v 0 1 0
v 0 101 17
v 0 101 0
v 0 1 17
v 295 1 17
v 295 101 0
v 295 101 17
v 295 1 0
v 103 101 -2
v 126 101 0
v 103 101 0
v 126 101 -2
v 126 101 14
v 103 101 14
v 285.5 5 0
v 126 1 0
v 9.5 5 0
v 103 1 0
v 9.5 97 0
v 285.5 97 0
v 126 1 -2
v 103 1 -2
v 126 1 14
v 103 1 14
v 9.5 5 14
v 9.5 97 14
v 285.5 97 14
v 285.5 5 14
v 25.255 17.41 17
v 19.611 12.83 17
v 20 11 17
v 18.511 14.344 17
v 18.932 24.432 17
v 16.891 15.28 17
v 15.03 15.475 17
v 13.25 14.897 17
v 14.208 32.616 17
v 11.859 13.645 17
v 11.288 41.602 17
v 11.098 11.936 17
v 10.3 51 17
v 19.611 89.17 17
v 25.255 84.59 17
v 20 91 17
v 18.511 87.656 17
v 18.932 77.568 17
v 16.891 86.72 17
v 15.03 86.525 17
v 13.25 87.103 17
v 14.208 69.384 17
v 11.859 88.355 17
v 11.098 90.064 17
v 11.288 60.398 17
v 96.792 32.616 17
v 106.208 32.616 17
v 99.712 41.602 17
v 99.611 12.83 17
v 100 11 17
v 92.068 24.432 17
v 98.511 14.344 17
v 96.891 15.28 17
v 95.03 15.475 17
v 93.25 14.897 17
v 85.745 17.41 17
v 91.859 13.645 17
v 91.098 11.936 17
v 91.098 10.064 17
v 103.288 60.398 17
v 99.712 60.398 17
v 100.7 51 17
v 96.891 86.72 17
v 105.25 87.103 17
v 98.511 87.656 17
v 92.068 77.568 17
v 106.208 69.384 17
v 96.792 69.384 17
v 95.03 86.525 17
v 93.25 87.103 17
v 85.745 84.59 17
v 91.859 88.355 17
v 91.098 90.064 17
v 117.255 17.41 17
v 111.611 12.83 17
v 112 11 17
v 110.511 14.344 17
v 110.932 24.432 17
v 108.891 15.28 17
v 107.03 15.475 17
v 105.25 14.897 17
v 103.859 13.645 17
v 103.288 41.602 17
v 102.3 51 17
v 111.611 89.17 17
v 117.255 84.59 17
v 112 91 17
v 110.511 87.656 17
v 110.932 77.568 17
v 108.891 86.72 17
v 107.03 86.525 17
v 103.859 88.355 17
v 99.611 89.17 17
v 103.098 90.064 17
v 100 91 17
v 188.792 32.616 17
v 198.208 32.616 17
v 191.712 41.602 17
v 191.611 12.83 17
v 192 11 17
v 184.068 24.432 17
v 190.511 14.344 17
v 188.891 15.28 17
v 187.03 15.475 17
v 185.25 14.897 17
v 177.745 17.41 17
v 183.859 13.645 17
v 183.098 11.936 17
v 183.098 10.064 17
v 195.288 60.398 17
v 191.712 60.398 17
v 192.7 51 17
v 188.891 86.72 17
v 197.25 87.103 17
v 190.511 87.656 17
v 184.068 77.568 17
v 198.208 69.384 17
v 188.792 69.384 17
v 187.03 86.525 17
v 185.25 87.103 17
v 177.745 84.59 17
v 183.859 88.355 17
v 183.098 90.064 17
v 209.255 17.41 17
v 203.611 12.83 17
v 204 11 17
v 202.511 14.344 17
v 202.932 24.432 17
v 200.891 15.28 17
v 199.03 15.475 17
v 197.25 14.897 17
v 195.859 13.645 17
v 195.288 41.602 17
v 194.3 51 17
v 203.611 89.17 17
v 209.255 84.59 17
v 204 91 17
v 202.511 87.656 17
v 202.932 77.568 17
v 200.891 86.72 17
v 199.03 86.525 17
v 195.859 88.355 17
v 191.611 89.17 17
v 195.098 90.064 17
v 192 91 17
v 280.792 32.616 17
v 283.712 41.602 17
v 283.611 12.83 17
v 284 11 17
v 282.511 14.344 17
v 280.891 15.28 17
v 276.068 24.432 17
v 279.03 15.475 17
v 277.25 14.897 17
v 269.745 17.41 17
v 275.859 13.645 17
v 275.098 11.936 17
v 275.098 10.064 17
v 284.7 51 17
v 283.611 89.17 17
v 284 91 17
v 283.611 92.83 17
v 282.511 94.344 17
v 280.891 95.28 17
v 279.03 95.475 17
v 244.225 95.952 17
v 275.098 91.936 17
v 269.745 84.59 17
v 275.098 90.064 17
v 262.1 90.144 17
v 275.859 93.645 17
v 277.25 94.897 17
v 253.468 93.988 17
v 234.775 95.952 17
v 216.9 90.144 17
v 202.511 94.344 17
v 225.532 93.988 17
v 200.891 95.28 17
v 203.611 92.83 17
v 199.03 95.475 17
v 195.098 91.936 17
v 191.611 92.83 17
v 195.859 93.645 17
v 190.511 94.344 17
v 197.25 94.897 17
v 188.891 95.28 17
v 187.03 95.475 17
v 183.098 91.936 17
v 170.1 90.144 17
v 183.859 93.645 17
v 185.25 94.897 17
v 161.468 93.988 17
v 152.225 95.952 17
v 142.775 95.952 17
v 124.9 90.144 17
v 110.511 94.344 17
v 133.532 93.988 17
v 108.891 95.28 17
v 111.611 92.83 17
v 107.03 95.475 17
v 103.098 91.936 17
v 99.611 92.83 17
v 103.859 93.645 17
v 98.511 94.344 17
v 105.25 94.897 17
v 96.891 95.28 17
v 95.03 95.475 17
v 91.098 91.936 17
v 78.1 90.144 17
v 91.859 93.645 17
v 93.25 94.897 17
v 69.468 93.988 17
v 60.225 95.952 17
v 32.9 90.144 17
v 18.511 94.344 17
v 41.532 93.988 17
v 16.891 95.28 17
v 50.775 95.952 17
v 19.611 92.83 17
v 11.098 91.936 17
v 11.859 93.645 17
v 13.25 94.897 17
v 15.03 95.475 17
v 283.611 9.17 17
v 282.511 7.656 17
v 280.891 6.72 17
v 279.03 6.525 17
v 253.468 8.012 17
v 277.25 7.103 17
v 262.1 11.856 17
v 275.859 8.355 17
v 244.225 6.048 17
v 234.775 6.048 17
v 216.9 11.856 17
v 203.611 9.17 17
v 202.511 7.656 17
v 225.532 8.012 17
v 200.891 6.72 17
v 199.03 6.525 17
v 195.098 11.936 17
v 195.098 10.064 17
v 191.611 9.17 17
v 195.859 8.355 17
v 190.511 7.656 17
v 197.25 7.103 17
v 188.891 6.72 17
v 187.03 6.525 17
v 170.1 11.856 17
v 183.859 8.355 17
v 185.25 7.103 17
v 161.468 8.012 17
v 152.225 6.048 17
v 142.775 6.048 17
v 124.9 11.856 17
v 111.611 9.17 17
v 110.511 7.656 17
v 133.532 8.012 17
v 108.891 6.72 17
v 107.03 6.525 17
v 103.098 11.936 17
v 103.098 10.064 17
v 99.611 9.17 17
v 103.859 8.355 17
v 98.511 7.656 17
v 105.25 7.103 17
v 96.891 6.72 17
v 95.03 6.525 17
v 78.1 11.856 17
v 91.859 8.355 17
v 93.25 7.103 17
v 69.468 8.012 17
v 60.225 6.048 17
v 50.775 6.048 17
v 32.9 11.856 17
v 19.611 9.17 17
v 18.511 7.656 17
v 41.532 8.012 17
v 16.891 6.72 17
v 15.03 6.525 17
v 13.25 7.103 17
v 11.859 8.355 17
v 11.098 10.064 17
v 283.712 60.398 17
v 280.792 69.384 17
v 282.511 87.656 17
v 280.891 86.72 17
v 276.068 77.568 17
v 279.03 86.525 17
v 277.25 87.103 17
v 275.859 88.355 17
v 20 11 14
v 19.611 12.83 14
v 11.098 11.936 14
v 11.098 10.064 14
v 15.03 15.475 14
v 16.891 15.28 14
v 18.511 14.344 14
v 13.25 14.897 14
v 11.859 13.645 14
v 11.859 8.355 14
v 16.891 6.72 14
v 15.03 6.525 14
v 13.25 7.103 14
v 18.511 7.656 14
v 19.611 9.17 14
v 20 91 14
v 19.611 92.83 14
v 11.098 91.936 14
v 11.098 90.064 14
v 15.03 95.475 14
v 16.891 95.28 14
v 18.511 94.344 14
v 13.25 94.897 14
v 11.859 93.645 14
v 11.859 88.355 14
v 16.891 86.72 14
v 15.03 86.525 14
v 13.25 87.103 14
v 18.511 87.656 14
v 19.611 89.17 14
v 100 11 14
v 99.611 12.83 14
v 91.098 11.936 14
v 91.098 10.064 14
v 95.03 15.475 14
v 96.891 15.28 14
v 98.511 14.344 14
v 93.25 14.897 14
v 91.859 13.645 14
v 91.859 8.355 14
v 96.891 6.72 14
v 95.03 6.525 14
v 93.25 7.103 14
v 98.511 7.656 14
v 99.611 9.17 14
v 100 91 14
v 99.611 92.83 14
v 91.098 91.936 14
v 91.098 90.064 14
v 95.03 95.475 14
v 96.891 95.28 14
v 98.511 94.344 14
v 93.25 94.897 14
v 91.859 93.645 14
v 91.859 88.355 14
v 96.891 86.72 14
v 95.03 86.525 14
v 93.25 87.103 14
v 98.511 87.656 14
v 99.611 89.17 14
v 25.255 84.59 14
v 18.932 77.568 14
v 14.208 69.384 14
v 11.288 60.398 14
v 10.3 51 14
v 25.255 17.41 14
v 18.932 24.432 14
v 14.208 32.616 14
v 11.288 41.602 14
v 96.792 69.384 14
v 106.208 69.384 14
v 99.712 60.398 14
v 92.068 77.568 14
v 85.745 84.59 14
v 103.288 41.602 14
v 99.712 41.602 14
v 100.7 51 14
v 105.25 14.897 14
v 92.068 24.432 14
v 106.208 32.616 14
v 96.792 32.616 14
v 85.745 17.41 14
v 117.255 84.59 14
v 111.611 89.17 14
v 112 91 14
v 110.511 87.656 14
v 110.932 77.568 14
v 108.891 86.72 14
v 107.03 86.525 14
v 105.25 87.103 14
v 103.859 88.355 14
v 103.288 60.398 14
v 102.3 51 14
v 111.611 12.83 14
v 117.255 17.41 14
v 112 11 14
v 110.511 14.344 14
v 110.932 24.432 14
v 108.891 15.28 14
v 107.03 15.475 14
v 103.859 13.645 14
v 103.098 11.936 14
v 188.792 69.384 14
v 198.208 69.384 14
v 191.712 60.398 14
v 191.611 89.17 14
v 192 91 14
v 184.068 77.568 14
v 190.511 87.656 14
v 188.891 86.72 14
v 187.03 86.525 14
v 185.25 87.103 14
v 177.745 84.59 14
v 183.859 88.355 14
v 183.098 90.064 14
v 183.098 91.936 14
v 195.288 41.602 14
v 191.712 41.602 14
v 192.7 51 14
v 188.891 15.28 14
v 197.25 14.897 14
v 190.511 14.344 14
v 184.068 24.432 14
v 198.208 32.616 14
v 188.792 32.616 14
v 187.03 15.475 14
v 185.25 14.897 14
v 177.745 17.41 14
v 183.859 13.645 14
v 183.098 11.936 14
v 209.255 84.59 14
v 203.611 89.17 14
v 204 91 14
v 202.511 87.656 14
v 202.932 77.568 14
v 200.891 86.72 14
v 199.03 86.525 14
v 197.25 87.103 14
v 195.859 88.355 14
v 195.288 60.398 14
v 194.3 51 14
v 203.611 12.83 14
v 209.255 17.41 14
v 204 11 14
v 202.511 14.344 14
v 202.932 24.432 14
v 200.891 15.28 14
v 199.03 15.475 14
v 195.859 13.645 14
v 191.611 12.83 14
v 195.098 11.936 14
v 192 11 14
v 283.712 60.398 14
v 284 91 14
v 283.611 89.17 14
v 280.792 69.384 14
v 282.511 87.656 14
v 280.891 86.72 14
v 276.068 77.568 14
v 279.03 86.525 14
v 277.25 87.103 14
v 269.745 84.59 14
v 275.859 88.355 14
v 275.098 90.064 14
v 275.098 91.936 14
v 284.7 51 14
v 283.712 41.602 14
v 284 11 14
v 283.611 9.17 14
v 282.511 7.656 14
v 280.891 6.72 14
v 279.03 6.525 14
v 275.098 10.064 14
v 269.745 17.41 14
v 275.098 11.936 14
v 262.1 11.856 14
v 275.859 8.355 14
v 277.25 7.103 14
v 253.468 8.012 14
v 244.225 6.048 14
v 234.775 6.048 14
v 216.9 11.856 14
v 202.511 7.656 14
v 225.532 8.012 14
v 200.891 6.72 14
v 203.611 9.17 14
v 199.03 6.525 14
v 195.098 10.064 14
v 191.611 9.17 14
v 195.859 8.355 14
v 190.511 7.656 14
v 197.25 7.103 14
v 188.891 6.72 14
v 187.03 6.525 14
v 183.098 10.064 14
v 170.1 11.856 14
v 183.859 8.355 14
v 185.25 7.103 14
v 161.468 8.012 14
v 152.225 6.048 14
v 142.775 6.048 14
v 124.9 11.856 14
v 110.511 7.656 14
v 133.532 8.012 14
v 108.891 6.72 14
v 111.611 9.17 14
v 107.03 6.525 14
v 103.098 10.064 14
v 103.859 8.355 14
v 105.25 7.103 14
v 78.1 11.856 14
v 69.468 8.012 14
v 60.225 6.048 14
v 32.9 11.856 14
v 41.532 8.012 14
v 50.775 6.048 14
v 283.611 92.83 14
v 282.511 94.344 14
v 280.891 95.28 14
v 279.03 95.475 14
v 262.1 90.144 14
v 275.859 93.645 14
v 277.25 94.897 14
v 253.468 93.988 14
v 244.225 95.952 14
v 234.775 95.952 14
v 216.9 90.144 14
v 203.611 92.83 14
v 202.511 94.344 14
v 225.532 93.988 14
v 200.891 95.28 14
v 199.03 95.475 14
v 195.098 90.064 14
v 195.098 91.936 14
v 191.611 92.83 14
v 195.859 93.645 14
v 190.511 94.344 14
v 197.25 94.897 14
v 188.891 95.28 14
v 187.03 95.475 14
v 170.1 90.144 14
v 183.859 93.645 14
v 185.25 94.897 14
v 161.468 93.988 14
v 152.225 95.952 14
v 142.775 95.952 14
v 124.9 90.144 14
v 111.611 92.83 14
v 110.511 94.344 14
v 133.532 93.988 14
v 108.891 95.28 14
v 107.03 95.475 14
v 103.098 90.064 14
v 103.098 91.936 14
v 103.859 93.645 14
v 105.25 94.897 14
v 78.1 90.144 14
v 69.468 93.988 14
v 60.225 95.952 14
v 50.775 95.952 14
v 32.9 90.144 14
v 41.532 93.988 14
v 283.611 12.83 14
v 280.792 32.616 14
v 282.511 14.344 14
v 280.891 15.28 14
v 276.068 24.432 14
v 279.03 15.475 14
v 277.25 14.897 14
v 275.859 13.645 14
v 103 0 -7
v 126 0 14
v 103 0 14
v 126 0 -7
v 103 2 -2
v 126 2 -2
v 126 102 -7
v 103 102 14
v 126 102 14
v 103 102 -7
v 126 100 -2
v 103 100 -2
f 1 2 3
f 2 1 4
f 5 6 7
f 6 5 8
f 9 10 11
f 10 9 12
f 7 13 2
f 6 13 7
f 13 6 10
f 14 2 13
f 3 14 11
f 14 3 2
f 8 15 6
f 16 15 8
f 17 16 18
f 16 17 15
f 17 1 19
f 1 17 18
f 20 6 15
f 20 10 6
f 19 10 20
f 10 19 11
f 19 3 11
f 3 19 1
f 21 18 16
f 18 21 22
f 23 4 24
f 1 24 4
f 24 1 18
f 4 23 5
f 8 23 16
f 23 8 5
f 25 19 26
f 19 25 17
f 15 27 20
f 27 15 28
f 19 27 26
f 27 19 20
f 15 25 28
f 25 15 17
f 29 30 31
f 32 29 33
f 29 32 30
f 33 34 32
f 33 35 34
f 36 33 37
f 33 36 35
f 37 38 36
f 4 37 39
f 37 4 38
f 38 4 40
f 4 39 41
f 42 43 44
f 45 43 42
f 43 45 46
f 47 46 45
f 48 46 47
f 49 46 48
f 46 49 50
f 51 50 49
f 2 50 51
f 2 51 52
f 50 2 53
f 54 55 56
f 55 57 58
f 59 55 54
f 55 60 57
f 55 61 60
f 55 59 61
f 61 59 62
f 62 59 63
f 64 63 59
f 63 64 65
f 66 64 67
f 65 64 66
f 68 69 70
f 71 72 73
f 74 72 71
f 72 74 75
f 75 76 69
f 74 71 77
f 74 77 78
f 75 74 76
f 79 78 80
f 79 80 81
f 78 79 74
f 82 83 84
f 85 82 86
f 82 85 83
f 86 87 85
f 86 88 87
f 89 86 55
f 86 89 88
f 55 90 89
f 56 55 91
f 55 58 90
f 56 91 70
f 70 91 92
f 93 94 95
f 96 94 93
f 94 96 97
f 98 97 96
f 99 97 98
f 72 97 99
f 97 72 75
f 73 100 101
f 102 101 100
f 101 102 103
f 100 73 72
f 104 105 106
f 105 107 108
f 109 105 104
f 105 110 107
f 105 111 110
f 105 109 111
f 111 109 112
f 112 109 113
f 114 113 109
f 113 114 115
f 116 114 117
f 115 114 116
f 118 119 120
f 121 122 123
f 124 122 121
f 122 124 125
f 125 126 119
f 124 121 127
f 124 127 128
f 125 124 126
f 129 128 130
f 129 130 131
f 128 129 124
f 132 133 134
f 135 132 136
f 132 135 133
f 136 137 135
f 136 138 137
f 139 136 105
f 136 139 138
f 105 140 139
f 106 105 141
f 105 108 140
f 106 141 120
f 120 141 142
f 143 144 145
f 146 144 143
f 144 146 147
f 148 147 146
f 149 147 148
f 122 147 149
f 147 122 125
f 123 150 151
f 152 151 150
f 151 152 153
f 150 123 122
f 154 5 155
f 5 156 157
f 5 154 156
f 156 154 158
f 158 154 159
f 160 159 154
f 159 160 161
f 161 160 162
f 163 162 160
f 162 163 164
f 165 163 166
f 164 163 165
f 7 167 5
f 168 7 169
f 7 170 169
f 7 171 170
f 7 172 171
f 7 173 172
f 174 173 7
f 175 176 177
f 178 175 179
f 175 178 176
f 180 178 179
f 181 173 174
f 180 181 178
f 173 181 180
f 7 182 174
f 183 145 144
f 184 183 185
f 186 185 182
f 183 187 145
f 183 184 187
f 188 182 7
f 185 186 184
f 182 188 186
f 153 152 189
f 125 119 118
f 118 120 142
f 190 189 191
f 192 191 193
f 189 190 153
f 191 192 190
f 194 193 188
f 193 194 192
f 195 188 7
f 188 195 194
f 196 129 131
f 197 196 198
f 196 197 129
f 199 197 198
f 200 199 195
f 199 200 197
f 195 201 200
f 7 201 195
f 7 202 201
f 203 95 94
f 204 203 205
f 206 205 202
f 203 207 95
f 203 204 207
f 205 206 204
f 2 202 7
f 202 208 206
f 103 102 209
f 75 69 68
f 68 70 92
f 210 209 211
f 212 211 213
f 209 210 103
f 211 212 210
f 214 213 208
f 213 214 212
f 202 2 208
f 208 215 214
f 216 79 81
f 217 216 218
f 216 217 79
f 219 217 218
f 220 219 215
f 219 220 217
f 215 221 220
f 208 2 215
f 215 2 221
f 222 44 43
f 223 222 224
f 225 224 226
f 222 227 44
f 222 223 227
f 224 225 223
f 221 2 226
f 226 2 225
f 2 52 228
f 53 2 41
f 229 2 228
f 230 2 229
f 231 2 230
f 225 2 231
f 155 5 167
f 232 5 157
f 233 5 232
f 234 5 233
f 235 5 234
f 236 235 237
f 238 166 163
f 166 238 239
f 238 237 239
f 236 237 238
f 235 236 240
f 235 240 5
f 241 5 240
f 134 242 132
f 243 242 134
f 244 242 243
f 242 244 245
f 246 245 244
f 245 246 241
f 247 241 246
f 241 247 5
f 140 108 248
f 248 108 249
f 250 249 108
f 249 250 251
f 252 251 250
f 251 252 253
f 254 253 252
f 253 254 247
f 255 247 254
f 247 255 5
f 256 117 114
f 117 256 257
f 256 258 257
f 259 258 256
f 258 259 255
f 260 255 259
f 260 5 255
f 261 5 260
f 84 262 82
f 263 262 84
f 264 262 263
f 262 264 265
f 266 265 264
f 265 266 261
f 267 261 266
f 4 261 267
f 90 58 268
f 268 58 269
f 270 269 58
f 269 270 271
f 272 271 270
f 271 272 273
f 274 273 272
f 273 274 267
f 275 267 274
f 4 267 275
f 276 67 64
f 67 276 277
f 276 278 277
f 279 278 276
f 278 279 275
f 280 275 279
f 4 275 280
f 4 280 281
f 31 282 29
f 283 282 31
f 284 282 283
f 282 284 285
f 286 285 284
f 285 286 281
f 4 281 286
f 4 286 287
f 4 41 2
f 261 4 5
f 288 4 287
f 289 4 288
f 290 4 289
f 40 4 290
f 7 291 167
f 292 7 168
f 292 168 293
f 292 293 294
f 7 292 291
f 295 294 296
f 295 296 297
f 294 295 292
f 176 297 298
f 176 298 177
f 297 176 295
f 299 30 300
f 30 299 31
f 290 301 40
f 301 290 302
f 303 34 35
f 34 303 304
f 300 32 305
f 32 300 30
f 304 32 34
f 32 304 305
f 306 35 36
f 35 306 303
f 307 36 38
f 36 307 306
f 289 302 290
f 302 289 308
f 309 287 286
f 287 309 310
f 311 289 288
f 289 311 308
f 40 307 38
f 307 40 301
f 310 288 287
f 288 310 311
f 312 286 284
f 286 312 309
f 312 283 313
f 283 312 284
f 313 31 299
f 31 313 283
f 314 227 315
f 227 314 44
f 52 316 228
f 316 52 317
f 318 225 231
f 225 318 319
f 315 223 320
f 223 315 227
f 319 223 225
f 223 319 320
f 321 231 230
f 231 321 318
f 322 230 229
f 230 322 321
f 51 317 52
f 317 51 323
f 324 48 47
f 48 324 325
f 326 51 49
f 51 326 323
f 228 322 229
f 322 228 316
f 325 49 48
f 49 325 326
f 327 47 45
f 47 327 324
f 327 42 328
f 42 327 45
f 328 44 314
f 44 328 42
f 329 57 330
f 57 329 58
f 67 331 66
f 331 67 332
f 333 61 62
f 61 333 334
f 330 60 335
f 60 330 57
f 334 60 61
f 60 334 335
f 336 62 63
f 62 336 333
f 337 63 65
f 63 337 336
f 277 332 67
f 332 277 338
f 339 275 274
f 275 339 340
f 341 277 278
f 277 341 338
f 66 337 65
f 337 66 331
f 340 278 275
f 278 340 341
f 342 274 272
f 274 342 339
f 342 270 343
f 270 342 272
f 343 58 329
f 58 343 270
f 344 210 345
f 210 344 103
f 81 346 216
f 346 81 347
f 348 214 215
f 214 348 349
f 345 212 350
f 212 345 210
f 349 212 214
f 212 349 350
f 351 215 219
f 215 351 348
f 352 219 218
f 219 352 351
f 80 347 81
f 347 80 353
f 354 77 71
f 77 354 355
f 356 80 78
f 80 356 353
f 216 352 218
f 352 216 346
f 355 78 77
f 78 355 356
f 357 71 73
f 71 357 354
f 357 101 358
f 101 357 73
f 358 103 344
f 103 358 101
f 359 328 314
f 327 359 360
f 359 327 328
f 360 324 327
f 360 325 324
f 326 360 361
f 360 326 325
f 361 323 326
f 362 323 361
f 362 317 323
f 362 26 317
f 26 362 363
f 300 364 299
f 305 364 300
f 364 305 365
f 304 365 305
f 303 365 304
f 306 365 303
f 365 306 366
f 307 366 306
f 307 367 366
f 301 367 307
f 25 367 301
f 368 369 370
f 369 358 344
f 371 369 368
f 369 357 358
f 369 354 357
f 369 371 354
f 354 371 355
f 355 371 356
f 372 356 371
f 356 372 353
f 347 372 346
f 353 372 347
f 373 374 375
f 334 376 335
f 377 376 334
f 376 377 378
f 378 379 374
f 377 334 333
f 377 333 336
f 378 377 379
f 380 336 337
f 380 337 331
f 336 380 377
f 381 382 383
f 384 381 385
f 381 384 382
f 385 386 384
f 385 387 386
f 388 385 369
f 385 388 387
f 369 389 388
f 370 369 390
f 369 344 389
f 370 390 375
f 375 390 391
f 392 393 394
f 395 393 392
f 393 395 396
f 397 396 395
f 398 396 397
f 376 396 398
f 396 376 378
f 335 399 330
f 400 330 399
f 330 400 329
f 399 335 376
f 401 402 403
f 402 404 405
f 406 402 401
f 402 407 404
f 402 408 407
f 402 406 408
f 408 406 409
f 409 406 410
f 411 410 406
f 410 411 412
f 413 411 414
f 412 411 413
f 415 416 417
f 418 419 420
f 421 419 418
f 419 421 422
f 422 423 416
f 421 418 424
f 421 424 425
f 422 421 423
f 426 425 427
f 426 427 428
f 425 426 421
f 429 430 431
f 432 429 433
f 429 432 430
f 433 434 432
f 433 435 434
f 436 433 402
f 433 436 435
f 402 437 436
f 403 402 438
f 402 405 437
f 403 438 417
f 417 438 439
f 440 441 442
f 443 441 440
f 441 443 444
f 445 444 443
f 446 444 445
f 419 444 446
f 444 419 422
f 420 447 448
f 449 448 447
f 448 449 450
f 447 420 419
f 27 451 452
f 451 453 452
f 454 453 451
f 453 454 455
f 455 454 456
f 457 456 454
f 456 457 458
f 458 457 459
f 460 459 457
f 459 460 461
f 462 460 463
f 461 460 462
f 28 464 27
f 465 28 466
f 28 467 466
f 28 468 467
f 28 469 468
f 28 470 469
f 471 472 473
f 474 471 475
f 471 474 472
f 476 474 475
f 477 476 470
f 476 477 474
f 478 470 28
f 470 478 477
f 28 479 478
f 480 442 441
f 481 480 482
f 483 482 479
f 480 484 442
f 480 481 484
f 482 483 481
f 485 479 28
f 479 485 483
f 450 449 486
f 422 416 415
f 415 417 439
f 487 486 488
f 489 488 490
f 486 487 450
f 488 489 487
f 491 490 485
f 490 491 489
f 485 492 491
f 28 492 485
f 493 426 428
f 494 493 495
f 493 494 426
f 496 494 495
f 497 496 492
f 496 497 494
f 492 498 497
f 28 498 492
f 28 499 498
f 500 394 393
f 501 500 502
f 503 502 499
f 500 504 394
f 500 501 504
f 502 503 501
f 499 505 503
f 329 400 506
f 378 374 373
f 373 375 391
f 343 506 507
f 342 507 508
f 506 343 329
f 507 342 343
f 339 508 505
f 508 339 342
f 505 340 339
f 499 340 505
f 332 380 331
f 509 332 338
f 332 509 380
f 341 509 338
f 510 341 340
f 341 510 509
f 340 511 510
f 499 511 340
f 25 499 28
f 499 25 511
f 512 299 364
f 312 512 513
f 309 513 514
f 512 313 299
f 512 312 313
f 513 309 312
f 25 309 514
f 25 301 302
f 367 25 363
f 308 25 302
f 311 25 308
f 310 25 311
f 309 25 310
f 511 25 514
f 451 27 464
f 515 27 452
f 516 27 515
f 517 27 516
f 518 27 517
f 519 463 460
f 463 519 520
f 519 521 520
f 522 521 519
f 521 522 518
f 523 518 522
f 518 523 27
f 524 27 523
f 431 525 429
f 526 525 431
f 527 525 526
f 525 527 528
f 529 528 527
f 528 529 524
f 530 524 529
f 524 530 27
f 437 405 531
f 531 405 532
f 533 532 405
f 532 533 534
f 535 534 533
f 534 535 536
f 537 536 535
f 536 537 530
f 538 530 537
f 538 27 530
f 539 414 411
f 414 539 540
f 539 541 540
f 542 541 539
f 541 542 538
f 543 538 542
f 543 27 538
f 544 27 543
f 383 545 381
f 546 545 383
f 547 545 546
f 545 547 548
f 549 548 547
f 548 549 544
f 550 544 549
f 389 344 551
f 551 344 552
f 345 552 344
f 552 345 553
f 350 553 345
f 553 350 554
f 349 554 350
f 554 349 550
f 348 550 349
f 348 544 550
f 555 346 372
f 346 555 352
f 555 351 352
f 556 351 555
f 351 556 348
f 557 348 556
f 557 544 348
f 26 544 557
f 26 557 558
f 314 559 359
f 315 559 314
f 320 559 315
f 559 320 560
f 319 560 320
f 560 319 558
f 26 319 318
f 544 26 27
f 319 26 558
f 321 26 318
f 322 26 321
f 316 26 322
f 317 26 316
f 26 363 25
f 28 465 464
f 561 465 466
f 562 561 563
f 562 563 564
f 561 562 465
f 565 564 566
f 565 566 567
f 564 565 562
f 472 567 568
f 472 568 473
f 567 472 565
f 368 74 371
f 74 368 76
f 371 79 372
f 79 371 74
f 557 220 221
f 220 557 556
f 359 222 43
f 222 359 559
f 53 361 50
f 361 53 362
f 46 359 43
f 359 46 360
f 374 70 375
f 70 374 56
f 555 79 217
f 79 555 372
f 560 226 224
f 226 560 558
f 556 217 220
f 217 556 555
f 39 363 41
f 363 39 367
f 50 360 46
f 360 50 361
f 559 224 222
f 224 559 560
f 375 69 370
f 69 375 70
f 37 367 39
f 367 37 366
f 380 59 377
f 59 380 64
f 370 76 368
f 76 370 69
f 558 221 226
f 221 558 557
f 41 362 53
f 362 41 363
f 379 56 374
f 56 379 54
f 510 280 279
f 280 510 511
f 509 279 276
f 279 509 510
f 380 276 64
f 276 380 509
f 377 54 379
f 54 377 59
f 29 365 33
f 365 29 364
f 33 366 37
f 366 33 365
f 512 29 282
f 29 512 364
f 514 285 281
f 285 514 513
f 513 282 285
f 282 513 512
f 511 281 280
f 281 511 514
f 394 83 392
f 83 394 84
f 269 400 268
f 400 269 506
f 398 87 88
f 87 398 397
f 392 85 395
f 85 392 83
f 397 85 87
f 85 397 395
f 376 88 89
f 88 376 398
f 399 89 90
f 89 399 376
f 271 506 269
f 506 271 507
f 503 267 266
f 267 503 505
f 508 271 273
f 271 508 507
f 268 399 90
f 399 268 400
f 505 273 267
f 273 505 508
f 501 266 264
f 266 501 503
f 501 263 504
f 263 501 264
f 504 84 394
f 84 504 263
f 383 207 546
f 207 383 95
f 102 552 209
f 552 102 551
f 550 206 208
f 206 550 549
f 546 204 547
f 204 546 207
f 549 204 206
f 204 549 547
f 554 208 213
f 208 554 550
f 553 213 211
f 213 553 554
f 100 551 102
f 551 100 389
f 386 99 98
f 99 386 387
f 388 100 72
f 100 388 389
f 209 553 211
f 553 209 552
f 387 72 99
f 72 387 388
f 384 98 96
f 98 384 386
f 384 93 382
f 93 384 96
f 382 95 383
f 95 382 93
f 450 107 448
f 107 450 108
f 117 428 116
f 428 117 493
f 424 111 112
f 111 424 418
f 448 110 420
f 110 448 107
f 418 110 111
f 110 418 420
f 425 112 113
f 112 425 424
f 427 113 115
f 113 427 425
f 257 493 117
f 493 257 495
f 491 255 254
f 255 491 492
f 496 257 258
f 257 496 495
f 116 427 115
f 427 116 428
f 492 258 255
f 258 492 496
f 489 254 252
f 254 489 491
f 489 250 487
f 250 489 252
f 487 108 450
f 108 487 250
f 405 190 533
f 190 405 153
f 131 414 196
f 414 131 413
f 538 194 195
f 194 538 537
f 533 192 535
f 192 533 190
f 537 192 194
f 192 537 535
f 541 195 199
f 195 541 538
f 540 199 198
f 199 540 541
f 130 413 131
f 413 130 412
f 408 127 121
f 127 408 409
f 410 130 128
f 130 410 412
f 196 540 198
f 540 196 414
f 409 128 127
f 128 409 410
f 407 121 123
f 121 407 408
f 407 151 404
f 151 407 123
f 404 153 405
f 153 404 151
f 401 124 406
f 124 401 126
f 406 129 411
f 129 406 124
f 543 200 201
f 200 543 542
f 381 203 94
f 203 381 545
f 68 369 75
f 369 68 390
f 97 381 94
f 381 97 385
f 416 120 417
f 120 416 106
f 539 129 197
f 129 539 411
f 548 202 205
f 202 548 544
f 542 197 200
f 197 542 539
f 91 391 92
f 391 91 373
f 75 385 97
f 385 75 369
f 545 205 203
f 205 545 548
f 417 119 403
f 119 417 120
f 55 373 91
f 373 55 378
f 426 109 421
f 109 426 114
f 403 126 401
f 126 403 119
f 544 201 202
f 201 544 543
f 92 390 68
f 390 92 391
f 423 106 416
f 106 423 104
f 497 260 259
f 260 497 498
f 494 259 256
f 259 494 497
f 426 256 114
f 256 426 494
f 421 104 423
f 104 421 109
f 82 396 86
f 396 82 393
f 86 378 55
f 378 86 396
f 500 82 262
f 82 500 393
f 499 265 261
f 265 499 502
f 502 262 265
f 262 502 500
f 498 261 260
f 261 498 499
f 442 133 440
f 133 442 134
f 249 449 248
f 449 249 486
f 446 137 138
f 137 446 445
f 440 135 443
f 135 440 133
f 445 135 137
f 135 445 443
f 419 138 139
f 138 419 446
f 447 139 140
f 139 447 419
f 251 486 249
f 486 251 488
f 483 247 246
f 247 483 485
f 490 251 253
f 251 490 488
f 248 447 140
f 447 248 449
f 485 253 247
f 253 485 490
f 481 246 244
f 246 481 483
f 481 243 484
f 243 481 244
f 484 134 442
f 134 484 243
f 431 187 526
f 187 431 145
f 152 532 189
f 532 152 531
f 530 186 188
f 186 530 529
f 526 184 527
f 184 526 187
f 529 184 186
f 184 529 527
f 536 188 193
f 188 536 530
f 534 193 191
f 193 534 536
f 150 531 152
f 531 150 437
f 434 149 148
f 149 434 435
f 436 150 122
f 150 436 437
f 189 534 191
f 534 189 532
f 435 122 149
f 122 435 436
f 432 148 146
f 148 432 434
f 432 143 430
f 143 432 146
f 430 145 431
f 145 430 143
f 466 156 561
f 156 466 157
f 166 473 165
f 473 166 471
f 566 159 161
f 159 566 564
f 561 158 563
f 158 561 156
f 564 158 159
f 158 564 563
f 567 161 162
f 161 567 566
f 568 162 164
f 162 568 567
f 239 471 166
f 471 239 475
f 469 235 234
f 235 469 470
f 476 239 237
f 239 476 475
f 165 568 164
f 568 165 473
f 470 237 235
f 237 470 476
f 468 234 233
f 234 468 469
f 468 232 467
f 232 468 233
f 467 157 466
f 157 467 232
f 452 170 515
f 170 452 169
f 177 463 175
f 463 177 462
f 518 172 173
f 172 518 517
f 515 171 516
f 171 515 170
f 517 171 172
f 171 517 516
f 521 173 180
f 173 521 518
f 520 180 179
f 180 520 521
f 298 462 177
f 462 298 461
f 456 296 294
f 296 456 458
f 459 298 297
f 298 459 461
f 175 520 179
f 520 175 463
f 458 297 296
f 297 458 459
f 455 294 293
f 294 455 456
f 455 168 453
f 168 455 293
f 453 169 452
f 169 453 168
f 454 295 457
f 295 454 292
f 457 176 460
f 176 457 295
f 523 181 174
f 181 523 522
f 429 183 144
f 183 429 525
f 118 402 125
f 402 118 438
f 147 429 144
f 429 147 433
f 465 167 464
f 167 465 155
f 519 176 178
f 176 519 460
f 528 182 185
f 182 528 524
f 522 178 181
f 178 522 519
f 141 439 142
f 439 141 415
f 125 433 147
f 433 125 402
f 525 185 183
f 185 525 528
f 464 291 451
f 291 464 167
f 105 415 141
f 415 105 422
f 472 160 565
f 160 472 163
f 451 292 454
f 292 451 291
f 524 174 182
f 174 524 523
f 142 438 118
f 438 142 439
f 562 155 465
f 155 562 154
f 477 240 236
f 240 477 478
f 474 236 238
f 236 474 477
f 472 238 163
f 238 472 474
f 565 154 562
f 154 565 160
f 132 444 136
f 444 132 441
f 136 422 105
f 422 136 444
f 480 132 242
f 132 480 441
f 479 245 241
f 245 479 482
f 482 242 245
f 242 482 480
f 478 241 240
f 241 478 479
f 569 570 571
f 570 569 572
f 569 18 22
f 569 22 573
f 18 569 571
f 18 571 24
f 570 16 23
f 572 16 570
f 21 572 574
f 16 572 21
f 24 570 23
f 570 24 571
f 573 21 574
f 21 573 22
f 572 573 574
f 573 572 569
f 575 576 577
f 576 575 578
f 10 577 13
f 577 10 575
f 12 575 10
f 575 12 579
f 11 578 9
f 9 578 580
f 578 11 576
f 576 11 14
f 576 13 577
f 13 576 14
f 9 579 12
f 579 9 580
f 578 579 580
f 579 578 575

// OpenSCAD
// file: fan_edges.scad
module fan_edges(radius=46) {
    difference() {
        cube([92, 92, 3]);
        
        // Center large cylinder in the middle
        translate([46, 46, -1])
            cylinder(h=10, r=radius, center=true);
        
        // Small cylinders at each corner
        for (x = [6, 92-6], y = [6, 92-6]) {
            translate([x, y, -1])
                cylinder(h=10, r=4.5);
        }
    }
}

module repeated_fan_edges(radius=46) {
    for (i = [0:2]) {
        translate([i * 92, 0, 0])
            fan_edges(radius=radius);
    }
}

// Call the module to render it
// repeated_fan_edges(radius=49);
module frame(radius=46) {
    length = 295;

    difference() {
        cube([length, 100, 14]);
        translate([(length - 3*92) / 2, (100 - 92) / 2, -1])
            cube([3*92, 92, 16]);
    }
    
    difference() {
        translate([0, 0, 14])
        cube([length, 100, 3]);
        translate([(length - 3*92) / 2, (100 - 92) / 2, -1])
            cube([3*92, 92, 20]);
    }
    translate([(length - 3*92) / 2, (100 - 92) / 2, 14])
      repeated_fan_edges(radius=radius);
    
}
// Render the frame with cutouts
// frame(radius=45.2);
// file: mounted_hook.scad
module hook(arm_length=1, arm_thickness=16, hook_length=5, hook_thickness=2, hook_width=23) {
    // Arm
    translate([0, -arm_thickness, 0])
    cube([arm_length, arm_thickness, hook_width]);

    // Small block
    translate([0, -16, 0])
    cube([2, 13, hook_width]);

    // Hook
    translate([0, 0, 0])
    linear_extrude(height = hook_width)
    polygon([[0, hook_length], [0, 0], [hook_thickness, 0]]);
}

// Wrapper module that applies transformations
module mounted_hook() {
    translate([20, 0, -2])
    rotate([90, 180, 270])
    hook();
}

// Call the new module
// mounted_hook();
// main file
include <mounted_hook.scad>
include <fan_edges.scad>

// frame();
module shroud(radius=45.2) {    
    translate([0, 1, 0])
    frame(radius=radius);
    translate([106,0,0])
    mounted_hook();

    translate([106,0,0])
    rotate([0, 0, 180])
    translate([-17, -2-100, 0])
    mounted_hook();
}

shroud();
